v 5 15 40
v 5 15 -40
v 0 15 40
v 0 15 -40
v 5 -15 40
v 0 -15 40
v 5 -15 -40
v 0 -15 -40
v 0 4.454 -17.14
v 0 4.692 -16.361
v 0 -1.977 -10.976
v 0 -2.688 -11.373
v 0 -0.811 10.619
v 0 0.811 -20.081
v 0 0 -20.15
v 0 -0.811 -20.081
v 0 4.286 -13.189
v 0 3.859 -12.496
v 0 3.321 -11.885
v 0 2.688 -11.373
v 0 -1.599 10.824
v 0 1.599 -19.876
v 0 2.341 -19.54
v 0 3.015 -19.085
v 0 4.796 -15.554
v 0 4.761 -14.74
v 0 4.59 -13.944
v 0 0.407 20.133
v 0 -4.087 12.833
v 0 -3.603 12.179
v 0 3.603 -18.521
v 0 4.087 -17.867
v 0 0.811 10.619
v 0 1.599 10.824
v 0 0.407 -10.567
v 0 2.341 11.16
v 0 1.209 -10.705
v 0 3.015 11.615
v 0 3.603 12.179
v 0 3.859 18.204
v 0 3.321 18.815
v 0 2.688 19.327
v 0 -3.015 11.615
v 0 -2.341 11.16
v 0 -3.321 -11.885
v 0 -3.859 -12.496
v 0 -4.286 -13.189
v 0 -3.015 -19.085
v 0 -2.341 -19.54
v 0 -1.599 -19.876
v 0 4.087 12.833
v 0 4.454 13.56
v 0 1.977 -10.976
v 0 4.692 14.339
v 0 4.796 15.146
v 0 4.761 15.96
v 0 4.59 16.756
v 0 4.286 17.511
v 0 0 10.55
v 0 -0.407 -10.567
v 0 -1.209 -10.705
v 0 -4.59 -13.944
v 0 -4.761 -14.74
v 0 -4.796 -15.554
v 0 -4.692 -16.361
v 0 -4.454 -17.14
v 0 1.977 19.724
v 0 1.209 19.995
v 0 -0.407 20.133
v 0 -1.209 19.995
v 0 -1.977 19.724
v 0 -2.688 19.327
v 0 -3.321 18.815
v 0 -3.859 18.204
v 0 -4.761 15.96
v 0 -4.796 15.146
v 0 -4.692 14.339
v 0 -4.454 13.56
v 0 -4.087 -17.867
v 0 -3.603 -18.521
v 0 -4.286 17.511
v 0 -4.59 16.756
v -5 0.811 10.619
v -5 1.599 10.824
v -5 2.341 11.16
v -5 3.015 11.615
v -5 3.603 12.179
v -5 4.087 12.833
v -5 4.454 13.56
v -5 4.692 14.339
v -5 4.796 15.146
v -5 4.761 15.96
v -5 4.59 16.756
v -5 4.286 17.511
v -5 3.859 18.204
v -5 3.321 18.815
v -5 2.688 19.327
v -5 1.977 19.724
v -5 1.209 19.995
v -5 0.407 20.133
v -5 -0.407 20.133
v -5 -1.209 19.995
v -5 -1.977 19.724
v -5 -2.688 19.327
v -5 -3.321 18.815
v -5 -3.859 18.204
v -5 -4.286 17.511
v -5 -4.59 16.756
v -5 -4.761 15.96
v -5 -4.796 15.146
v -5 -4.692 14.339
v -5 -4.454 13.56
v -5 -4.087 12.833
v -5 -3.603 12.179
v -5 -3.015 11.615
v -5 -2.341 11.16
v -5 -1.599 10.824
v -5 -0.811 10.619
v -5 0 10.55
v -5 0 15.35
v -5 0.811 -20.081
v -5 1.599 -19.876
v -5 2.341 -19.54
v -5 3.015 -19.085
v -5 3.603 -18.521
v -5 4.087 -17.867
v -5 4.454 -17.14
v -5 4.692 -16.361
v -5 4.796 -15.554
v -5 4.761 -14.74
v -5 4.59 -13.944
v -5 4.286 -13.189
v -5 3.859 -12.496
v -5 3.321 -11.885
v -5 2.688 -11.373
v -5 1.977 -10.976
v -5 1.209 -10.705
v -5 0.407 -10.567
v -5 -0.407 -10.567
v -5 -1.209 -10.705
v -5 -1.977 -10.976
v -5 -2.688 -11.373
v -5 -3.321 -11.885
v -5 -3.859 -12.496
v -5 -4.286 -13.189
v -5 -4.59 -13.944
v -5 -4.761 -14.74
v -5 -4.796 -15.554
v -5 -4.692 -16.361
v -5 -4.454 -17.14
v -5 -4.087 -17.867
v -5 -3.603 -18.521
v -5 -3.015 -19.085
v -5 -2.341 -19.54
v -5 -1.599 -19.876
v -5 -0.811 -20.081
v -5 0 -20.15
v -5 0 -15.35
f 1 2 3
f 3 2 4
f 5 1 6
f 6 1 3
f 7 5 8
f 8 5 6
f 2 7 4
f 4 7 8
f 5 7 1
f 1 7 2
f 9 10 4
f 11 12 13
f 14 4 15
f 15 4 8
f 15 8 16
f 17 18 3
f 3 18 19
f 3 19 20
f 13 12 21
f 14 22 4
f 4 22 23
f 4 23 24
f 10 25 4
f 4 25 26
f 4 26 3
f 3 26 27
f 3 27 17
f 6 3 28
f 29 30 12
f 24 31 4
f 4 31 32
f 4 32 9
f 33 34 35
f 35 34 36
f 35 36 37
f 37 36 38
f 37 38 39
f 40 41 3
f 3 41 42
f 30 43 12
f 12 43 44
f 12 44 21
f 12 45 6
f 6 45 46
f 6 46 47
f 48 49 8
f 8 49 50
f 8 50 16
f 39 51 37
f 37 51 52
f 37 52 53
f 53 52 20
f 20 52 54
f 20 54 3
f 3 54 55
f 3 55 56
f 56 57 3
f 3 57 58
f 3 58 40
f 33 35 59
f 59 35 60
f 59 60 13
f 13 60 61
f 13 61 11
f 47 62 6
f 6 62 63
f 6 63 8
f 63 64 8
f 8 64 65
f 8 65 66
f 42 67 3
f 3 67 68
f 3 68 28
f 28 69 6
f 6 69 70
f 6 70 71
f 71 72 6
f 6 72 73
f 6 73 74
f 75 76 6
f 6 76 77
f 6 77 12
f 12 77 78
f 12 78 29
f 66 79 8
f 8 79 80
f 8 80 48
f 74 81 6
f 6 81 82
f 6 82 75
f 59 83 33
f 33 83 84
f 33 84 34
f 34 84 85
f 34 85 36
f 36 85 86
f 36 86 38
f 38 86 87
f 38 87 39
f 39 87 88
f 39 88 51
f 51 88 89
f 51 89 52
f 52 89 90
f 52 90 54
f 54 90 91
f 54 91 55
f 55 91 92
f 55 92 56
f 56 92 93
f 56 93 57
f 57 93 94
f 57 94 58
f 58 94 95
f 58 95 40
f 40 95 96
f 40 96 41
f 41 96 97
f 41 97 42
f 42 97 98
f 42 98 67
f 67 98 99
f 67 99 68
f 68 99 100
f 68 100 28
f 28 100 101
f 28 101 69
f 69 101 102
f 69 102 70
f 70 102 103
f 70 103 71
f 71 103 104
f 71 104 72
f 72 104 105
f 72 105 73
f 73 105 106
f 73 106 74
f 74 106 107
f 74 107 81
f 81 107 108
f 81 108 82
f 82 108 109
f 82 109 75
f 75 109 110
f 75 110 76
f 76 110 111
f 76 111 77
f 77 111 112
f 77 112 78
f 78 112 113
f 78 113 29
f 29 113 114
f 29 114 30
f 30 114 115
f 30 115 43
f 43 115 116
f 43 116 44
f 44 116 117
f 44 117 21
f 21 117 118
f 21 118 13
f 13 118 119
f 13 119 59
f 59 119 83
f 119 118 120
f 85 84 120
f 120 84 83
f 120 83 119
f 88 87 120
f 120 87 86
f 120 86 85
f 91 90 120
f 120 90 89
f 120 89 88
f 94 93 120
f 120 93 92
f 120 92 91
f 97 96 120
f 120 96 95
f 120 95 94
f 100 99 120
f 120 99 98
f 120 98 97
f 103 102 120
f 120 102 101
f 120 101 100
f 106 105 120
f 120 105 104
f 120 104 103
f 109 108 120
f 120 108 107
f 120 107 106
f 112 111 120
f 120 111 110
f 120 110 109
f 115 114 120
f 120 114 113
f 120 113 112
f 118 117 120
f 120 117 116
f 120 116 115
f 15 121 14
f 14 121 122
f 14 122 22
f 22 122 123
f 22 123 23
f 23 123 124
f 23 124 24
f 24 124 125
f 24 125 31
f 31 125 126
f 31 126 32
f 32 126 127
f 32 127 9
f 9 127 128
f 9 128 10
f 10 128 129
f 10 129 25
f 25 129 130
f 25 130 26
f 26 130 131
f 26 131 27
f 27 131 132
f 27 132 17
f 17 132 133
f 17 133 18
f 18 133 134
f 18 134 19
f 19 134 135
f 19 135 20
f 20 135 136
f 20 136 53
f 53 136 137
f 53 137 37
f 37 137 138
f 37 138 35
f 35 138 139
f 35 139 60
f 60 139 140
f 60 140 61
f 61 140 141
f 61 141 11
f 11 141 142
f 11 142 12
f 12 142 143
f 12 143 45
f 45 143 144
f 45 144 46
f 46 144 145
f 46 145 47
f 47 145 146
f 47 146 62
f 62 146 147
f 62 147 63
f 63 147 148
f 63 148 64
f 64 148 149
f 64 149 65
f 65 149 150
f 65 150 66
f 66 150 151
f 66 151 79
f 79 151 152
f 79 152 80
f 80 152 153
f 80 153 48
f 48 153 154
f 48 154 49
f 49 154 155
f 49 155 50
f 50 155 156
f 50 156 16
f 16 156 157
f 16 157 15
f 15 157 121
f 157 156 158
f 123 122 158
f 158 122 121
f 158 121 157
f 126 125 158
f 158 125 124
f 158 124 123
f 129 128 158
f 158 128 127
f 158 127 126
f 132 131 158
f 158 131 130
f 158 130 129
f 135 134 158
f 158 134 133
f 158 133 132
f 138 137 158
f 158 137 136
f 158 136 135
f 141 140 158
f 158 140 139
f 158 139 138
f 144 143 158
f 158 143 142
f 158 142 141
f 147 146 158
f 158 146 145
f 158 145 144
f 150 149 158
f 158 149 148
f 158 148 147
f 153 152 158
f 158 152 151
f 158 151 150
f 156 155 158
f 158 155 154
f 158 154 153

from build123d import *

# Parameters (mm, degrees)
SKETCH1_W           = 30
SKETCH1_H           = 80
BOSS_EXTRUDE1_DEPTH = 5
SKETCH1_3_R         = 4.8
BOSS_EXTRUDE2_DEPTH = 5


with BuildPart() as part:
    # Sketch1 → Boss-Extrude1 (new body)
    with BuildSketch(Plane.YZ):
        Rectangle(SKETCH1_W, SKETCH1_H)
    extrude(amount=BOSS_EXTRUDE1_DEPTH)

    # Sketch1<3> → Boss-Extrude2 (add)
    with BuildSketch(Plane.YZ):
        with Locations((0, 15.35)):
            Circle(SKETCH1_3_R)
        with Locations((0, -15.35)):
            Circle(SKETCH1_3_R)
    extrude(amount=-BOSS_EXTRUDE2_DEPTH)


solid = part.part
